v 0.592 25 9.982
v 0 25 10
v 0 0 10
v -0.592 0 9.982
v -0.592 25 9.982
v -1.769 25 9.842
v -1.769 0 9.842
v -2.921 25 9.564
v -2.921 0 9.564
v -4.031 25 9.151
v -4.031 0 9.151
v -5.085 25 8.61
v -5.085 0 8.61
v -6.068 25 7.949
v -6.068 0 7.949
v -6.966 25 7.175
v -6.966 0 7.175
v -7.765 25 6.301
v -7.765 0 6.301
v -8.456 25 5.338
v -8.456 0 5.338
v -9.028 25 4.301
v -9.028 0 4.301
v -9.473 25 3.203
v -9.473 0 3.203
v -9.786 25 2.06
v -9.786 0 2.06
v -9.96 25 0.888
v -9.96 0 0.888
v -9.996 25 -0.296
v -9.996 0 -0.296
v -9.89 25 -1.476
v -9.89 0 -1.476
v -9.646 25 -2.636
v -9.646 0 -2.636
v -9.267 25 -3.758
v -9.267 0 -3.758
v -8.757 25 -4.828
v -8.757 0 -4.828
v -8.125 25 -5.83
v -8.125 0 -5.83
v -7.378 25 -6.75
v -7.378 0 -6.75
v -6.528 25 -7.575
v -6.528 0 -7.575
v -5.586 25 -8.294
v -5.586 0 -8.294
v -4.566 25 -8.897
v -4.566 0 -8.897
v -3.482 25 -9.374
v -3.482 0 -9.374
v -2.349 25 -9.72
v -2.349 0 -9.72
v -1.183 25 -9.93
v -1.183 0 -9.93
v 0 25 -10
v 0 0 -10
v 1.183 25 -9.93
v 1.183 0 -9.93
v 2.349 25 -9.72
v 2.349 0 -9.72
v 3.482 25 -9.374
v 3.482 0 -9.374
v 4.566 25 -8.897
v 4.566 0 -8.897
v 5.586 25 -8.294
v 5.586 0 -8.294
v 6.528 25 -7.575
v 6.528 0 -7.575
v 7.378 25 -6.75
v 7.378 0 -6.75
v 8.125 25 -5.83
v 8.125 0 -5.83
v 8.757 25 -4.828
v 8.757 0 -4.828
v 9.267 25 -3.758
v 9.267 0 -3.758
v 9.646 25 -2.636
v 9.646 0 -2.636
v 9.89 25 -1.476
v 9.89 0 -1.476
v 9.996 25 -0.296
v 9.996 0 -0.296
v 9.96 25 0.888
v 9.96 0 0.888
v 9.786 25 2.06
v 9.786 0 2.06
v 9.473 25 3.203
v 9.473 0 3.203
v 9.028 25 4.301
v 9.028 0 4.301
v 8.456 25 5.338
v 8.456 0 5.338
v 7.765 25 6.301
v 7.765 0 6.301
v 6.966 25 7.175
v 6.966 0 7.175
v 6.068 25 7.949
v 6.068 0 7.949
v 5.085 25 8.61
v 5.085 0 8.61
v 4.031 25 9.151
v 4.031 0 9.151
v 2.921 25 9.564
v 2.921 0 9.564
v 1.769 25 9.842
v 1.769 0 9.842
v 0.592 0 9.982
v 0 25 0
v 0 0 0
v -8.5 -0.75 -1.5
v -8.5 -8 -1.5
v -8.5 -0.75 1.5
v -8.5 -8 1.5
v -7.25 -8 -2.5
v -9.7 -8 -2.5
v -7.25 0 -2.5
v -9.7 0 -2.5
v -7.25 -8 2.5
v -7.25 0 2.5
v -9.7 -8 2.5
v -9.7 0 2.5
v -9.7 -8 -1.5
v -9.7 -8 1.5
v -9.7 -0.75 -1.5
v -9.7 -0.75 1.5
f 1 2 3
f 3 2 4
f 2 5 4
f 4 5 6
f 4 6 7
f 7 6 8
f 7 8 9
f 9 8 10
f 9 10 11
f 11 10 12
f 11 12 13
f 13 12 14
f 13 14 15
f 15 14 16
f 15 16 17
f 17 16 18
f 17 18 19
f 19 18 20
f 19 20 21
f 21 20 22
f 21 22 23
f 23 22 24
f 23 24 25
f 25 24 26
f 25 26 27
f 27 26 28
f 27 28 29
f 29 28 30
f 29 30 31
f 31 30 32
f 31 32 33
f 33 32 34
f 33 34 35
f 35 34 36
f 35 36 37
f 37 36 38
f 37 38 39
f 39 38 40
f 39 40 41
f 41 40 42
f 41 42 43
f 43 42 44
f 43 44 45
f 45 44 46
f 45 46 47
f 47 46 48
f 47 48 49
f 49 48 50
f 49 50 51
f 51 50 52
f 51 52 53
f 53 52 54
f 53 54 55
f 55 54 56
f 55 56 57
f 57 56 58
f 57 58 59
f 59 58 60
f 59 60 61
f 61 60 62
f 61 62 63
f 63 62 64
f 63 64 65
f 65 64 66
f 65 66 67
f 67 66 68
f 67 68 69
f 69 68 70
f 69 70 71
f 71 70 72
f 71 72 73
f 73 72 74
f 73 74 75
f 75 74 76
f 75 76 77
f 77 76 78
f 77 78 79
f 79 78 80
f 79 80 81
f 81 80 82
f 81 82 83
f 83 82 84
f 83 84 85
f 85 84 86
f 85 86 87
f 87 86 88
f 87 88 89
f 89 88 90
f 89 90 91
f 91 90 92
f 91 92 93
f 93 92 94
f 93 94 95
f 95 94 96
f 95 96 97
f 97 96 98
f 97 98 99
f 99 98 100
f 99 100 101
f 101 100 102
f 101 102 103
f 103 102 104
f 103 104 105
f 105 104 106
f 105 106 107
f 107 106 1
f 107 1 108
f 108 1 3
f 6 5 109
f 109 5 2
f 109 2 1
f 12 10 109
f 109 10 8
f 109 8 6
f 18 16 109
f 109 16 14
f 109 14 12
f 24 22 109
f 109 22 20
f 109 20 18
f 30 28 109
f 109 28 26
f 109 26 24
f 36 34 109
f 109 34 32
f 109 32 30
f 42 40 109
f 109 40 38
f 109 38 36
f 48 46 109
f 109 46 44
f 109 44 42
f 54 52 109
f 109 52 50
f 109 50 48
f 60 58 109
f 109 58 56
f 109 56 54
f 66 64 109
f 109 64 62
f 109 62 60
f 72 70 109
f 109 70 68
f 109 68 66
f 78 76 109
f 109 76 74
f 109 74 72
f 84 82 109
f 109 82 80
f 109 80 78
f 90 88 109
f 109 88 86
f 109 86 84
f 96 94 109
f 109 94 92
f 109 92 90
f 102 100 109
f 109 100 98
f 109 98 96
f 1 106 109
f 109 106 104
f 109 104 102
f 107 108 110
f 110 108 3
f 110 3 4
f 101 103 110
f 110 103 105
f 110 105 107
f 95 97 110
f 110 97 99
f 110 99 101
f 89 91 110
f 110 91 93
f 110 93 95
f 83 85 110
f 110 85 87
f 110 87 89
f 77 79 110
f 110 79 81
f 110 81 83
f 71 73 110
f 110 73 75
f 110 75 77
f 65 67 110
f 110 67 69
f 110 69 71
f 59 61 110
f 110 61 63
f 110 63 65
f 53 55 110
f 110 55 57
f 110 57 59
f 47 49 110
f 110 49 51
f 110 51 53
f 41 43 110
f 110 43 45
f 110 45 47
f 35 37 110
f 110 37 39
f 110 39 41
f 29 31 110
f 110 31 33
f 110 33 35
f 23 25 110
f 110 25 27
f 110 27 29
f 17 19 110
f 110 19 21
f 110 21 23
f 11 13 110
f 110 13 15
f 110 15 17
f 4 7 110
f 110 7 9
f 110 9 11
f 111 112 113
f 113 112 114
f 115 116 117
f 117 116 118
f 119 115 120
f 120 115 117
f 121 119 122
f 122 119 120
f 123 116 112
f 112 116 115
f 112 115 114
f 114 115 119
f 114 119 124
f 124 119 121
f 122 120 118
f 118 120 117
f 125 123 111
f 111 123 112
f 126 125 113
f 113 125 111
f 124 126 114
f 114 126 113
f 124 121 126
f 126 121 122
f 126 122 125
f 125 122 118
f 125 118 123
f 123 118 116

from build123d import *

# Parameters (mm, degrees)
SKETCH1_R           = 10
BOSS_EXTRUDE1_DEPTH = 25
SKETCH2_W           = 1.25
SKETCH2_H           = 5
BOSS_EXTRUDE2_DEPTH = 8
BOSS_EXTRUDE3_DEPTH = 1.2


with BuildPart() as part:
    # Sketch1 → Boss-Extrude1 (new body)
    with BuildSketch(Plane(origin=(0, 0, 0), x_dir=(1, 0, 0), z_dir=(0, 1, 0))):
        with Locations(Location((0, 0, 0), (0, 0, 270))):
            Circle(SKETCH1_R)
    extrude(amount=BOSS_EXTRUDE1_DEPTH)


with BuildPart() as body_2:
    # Sketch2 → Boss-Extrude2 (new body)
    with BuildSketch(Plane(origin=(0, 0, 0), x_dir=(-1, 0, 0), z_dir=(0, -1, 0))):
        with Locations((7.875, 0)):
            Rectangle(SKETCH2_W, SKETCH2_H)
    extrude(amount=BOSS_EXTRUDE2_DEPTH)

    # Sketch3 → Boss-Extrude3 (add)
    with BuildSketch(Plane.ZY.offset(8.5)):
        Polygon((-2.5, -8), (-2.5, 0), (2.5, 0), (2.5, -8), (1.5, -8), (1.5, -0.75), (-1.5, -0.75), (-1.5, -8), align=None)
    extrude(amount=BOSS_EXTRUDE3_DEPTH)


solid = Compound([part.part, body_2.part])
